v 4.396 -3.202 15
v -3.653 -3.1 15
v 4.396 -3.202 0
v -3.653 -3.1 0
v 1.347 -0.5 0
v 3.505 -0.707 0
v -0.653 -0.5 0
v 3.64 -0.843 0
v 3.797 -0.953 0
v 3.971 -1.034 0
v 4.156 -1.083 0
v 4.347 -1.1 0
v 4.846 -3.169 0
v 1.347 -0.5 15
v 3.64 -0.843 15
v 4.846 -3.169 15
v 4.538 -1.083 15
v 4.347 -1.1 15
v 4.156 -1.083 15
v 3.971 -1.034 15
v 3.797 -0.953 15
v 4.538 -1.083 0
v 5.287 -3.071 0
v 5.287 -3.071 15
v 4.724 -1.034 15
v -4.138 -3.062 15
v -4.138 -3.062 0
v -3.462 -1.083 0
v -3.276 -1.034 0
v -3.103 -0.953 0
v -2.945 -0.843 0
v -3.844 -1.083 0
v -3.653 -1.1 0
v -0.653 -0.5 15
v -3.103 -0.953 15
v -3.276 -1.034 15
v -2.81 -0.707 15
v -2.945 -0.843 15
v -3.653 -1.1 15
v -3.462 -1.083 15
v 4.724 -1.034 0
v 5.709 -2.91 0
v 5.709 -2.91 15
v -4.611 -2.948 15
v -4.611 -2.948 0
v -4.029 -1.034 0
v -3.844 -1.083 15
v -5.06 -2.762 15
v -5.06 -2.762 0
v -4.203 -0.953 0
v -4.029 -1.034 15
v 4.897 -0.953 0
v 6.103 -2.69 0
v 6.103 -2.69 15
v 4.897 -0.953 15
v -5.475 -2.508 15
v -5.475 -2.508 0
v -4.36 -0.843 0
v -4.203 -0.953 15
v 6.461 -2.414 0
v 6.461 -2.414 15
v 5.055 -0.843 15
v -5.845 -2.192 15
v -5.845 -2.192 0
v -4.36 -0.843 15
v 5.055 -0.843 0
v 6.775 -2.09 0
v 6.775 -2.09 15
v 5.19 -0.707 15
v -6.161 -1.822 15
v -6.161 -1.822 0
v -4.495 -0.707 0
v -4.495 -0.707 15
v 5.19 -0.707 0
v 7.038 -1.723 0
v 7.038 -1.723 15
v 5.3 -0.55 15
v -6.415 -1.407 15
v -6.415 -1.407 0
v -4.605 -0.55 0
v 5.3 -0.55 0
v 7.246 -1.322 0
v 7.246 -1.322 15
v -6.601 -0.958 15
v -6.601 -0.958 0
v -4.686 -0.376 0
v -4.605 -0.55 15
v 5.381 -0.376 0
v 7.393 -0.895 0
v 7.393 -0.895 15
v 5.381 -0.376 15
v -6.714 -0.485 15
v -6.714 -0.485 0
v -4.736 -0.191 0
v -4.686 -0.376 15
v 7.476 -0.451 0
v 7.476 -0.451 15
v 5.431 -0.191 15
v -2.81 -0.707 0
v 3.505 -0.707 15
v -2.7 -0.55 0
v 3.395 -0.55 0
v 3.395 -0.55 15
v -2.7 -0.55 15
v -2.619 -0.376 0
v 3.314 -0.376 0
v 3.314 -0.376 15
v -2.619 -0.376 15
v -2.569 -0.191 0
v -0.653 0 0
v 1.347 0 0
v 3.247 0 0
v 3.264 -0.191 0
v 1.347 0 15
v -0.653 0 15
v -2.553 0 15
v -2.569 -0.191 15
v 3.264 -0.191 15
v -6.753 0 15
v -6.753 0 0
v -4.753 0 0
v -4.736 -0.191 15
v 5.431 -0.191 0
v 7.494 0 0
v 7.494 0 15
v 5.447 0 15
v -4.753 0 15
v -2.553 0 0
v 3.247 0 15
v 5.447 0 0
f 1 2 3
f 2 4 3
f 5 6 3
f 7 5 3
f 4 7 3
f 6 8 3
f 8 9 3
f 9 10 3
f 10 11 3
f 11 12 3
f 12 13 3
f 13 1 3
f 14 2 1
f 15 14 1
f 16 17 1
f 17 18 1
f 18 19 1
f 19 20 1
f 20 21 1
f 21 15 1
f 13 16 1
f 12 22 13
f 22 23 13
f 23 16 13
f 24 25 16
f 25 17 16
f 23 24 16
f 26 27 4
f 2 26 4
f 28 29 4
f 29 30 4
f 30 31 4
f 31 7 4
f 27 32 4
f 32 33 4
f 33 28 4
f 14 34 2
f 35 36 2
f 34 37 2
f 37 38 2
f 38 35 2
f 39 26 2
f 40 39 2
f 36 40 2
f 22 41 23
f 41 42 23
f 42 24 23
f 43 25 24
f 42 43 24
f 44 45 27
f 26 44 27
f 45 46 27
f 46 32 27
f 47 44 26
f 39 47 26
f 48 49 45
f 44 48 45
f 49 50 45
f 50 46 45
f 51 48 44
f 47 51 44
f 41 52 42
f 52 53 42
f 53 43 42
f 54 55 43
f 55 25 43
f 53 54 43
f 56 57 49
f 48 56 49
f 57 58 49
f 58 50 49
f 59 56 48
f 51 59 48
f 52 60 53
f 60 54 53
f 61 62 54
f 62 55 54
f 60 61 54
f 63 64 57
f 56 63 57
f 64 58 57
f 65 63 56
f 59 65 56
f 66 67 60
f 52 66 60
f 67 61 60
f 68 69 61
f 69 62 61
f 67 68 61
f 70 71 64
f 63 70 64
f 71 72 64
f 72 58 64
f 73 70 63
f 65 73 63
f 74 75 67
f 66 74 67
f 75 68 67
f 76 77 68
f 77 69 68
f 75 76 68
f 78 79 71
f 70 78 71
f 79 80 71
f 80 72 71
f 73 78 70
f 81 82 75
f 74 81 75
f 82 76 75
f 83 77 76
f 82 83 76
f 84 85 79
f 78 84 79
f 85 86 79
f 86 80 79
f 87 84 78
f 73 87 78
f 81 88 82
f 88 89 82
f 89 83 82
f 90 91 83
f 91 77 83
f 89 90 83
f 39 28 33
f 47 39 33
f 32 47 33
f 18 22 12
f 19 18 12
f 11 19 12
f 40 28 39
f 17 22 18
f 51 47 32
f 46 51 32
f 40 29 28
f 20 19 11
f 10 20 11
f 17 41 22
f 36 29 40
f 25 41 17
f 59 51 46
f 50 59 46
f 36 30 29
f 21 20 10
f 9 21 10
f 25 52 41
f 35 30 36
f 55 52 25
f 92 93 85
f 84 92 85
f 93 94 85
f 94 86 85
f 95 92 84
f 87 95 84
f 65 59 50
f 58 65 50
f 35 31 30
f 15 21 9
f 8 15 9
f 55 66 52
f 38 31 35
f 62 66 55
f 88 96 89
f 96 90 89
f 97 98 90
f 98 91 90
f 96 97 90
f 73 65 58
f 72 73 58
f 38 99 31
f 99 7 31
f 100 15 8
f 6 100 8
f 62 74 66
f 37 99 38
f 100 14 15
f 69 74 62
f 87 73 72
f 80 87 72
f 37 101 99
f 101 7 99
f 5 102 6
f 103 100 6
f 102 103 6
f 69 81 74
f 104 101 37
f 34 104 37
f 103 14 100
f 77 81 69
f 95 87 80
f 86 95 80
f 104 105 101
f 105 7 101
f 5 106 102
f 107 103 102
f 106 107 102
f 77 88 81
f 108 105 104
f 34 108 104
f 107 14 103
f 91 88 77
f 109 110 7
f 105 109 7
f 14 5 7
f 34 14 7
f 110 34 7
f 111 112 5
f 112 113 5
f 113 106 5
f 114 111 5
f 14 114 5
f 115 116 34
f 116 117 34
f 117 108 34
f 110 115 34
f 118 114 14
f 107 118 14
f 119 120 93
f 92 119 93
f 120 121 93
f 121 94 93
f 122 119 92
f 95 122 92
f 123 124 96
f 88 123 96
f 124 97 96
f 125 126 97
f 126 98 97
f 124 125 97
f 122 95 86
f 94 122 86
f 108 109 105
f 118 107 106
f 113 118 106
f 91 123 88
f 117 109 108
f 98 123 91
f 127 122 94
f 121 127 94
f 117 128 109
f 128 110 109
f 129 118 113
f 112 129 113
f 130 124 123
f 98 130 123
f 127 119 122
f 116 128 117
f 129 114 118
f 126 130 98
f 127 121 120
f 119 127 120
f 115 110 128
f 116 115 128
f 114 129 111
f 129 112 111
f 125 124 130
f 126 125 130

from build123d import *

# Parameters (mm, degrees)
SKETCH1_R           = 1.1
SKETCH1_R_2         = 1.6
BOSS_EXTRUDE1_DEPTH = 15
SKETCH3_R           = 1.6
CUT_EXTRUDE1_DEPTH  = 15
SKETCH5_W           = 2
SKETCH5_H           = 0.5
CUT_EXTRUDE2_DEPTH  = 16


with BuildPart() as part:
    # Sketch1 → Boss-Extrude1 (new body)
    with BuildSketch(Plane.XY):
        with BuildLine():
            Line((-1.61243197, 5.01974999), (-5.34022711, 2.600340269))
            ThreePointArc((-5.34022711, 2.600340269), (-6.625018483, -0.880041239), (-3.652556975, -3.1))
            Line((-3.652556975, -3.1), (4.395993446, -3.201847309))
            ThreePointArc((4.395993446, -3.201847309), (7.362670385, -1.001195929), (6.117333323, 2.476328214))
            Line((6.117333323, 2.476328214), (2.346418367, 4.994010285))
            ThreePointArc((2.346418367, 4.994010285), (0.370849058, 5.59992391), (-1.61243197, 5.01974999))
        make_face()
        with Locations((4.347443025, 0)):
            Circle(SKETCH1_R, mode=Mode.SUBTRACT)
        with Locations((0.347443025, 2)):
            Circle(SKETCH1_R_2, mode=Mode.SUBTRACT)
        with Locations((-3.652556975, 0)):
            Circle(SKETCH1_R, mode=Mode.SUBTRACT)
    extrude(amount=BOSS_EXTRUDE1_DEPTH)

    # Sketch3 → Cut-Extrude1 (cut)
    with BuildSketch(Plane.XY.offset(15)):
        with BuildLine():
            ThreePointArc((-4.752556975, 0), (-3.652556975, 1.1), (-2.552556975, 0))
            Line((-2.552556975, 0), (3.247443025, 0))
            ThreePointArc((3.247443025, 0), (4.347443025, 1.1), (5.447443025, 0))
            Line((5.447443025, 0), (7.49431995, 0))
            ThreePointArc((7.49431995, 0), (7.105300804, 1.404689659), (6.117333323, 2.476328214))
            Line((6.117333323, 2.476328214), (2.346418367, 4.994010285))
            ThreePointArc((2.346418367, 4.994010285), (0.370849058, 5.59992391), (-1.61243197, 5.01974999))
            Line((-1.61243197, 5.01974999), (-5.34022711, 2.600340269))
            ThreePointArc((-5.34022711, 2.600340269), (-6.376687792, 1.479564561), (-6.752556975, 0))
            Line((-6.752556975, 0), (-4.752556975, 0))
        make_face()
        with Locations((0.347443025, 2)):
            Circle(SKETCH3_R, mode=Mode.SUBTRACT)
    extrude(amount=-CUT_EXTRUDE1_DEPTH, mode=Mode.SUBTRACT)

    # Sketch5 → Cut-Extrude2 (cut, through all)
    with BuildSketch(Plane.XY.offset(15)):
        with Locations((0.347443025, -0.25)):
            Rectangle(SKETCH5_W, SKETCH5_H)
    extrude(amount=-CUT_EXTRUDE2_DEPTH, mode=Mode.SUBTRACT)


solid = part.part
